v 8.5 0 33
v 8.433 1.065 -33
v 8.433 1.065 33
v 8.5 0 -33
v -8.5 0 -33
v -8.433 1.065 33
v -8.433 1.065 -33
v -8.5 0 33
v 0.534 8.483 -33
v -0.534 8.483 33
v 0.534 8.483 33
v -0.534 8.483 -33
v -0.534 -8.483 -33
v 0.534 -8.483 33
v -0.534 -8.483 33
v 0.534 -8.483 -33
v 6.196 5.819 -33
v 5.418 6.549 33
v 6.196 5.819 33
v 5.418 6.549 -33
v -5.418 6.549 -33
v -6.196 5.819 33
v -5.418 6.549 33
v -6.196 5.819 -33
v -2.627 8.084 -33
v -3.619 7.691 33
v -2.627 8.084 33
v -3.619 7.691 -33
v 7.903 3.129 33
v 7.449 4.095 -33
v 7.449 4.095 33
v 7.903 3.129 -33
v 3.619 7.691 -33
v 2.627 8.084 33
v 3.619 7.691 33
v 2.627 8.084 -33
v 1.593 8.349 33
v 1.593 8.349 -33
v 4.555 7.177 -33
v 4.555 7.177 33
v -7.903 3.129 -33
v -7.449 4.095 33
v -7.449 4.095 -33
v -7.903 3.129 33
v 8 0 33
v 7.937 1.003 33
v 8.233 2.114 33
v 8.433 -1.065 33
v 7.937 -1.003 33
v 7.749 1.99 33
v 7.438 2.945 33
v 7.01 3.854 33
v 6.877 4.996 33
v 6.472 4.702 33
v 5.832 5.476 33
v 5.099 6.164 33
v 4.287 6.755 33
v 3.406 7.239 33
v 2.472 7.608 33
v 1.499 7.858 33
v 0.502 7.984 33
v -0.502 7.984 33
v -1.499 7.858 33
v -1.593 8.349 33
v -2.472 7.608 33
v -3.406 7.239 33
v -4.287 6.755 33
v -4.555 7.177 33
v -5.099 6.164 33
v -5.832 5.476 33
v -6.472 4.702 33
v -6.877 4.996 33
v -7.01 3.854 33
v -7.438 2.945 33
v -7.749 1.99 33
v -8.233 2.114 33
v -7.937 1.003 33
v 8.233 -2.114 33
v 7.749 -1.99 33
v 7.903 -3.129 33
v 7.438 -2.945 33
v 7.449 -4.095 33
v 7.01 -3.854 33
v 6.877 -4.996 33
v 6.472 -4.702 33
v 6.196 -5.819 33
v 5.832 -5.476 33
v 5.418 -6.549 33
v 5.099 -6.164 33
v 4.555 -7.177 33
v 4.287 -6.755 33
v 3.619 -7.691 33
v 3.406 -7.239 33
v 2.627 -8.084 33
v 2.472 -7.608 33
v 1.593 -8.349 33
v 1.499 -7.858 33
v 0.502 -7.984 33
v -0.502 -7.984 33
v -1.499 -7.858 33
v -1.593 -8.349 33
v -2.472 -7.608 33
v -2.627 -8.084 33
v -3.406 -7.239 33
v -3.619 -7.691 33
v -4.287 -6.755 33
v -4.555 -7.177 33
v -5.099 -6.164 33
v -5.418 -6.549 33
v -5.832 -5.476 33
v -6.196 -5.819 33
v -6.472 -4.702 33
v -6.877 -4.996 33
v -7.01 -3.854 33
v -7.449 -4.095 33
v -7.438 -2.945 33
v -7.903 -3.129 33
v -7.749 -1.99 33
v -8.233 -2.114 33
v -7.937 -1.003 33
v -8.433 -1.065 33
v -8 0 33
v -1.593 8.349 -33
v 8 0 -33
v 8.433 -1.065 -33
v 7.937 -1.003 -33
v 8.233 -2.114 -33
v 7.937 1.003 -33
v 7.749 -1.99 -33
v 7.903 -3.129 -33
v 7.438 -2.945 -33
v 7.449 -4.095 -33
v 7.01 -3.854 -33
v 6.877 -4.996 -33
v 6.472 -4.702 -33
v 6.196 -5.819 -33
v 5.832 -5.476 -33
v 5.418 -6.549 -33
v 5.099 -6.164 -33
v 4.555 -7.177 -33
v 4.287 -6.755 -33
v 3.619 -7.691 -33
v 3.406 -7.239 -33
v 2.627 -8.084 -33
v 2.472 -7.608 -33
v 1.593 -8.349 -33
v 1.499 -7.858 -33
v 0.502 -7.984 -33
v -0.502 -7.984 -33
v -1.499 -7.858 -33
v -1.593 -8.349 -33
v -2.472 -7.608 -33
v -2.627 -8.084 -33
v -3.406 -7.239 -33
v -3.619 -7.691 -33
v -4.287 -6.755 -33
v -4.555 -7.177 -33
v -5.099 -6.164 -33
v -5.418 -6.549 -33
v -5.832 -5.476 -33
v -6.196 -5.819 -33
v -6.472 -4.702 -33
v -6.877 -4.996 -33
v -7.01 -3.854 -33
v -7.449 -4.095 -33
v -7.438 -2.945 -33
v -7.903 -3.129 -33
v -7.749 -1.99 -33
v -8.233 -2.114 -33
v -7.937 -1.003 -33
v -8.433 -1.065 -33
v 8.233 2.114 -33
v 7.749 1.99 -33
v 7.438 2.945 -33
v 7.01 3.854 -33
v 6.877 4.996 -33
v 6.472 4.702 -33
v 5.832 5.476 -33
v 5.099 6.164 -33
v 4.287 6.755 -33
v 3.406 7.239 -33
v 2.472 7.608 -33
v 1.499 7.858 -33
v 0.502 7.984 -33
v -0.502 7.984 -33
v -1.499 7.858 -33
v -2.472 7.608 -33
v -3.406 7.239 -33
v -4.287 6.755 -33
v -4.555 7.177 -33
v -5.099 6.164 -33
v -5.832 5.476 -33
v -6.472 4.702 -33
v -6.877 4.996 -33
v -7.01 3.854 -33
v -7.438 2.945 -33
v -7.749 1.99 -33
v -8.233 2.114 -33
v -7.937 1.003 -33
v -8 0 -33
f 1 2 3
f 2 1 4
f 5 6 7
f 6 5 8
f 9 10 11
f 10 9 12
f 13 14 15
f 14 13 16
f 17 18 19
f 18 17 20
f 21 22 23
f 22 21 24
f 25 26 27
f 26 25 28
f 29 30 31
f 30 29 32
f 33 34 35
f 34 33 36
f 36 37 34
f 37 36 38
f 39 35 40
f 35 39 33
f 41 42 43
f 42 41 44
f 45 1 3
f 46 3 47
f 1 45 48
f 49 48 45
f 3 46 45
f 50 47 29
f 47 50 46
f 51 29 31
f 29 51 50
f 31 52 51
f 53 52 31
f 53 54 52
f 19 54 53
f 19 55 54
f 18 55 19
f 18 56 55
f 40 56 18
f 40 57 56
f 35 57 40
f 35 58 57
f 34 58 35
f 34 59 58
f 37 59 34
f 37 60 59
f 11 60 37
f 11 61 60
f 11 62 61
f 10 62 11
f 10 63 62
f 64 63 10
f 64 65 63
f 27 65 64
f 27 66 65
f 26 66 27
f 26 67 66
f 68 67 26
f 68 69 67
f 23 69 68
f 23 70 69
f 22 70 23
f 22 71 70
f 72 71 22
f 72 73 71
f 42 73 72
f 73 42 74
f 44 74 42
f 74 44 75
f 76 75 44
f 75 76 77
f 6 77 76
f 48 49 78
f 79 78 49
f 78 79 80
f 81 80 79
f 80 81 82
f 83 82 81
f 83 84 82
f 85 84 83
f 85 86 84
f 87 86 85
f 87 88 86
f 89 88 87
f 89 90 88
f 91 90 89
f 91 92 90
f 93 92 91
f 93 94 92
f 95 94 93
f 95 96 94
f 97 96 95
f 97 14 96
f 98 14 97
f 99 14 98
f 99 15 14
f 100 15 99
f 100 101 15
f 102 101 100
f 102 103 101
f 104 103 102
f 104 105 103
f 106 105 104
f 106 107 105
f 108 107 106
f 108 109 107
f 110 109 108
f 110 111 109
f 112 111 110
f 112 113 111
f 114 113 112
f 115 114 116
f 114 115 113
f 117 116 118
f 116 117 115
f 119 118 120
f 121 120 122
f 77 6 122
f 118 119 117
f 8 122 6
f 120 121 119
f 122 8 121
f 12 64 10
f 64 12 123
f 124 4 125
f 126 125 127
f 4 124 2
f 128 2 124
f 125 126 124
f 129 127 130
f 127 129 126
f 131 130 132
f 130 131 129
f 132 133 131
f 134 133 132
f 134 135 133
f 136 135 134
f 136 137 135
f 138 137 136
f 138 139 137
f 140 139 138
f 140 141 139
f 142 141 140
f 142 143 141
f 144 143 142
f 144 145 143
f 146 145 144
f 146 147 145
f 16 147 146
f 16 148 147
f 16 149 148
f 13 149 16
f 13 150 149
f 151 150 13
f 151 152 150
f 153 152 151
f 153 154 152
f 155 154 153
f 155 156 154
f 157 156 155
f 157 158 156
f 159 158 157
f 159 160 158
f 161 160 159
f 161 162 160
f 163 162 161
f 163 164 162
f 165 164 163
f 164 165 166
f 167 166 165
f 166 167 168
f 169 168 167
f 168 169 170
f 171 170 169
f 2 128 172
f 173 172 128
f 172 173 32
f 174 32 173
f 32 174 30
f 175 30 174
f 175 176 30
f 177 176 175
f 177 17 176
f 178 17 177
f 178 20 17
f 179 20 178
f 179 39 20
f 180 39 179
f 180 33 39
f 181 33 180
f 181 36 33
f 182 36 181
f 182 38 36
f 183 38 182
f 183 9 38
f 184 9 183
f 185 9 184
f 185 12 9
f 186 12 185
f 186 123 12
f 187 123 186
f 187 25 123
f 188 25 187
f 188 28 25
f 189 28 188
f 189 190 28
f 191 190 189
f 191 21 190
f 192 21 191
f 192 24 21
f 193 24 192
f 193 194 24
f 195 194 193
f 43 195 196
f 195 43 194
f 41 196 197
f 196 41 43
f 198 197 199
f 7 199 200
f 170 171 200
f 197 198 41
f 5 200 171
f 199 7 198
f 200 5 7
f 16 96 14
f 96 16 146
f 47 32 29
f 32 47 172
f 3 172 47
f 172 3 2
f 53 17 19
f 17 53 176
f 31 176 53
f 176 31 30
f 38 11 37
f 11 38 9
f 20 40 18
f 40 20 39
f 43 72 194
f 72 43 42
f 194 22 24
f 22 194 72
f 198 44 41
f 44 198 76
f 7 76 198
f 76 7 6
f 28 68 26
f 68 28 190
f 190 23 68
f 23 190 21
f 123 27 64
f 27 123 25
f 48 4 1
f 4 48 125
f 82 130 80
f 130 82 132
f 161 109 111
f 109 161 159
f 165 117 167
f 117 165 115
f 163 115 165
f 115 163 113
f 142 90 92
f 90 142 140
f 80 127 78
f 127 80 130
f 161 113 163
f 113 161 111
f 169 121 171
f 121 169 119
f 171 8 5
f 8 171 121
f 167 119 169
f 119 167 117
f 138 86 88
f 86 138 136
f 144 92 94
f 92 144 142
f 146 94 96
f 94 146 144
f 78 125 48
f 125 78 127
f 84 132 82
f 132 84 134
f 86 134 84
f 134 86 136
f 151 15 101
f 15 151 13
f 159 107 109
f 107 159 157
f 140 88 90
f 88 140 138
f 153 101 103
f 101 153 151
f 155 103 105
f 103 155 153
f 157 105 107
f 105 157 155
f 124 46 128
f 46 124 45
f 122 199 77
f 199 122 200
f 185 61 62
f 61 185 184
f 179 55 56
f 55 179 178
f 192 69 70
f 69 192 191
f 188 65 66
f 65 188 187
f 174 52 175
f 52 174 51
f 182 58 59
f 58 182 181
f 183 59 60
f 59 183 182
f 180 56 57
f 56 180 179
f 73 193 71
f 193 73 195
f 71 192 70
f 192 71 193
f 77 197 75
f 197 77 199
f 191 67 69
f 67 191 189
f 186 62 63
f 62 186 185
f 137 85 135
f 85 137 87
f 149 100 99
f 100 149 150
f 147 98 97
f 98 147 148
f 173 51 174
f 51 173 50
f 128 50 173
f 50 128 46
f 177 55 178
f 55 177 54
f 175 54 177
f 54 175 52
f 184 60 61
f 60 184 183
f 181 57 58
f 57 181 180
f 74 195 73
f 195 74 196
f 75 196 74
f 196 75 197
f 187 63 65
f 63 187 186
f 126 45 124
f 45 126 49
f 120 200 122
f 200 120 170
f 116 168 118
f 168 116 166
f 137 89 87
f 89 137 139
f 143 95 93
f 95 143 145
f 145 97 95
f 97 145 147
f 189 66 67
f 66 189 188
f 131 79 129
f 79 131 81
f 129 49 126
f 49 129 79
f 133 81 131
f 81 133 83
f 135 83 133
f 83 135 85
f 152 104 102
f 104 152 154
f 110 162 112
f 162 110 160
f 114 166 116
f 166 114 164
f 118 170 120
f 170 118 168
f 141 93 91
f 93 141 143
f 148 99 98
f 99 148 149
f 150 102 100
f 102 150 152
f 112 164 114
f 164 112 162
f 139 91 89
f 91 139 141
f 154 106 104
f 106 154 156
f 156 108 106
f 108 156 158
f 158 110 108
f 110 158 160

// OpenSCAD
$fn = 50;


difference() {
	union() {
		translate(v = [0, 0, -33.0000000000]) {
			cylinder(h = 66, r = 8.5000000000);
		}
	}
	union() {
		translate(v = [0, 0, -100.0000000000]) {
			cylinder(h = 200, r = 8);
		}
	}
}
